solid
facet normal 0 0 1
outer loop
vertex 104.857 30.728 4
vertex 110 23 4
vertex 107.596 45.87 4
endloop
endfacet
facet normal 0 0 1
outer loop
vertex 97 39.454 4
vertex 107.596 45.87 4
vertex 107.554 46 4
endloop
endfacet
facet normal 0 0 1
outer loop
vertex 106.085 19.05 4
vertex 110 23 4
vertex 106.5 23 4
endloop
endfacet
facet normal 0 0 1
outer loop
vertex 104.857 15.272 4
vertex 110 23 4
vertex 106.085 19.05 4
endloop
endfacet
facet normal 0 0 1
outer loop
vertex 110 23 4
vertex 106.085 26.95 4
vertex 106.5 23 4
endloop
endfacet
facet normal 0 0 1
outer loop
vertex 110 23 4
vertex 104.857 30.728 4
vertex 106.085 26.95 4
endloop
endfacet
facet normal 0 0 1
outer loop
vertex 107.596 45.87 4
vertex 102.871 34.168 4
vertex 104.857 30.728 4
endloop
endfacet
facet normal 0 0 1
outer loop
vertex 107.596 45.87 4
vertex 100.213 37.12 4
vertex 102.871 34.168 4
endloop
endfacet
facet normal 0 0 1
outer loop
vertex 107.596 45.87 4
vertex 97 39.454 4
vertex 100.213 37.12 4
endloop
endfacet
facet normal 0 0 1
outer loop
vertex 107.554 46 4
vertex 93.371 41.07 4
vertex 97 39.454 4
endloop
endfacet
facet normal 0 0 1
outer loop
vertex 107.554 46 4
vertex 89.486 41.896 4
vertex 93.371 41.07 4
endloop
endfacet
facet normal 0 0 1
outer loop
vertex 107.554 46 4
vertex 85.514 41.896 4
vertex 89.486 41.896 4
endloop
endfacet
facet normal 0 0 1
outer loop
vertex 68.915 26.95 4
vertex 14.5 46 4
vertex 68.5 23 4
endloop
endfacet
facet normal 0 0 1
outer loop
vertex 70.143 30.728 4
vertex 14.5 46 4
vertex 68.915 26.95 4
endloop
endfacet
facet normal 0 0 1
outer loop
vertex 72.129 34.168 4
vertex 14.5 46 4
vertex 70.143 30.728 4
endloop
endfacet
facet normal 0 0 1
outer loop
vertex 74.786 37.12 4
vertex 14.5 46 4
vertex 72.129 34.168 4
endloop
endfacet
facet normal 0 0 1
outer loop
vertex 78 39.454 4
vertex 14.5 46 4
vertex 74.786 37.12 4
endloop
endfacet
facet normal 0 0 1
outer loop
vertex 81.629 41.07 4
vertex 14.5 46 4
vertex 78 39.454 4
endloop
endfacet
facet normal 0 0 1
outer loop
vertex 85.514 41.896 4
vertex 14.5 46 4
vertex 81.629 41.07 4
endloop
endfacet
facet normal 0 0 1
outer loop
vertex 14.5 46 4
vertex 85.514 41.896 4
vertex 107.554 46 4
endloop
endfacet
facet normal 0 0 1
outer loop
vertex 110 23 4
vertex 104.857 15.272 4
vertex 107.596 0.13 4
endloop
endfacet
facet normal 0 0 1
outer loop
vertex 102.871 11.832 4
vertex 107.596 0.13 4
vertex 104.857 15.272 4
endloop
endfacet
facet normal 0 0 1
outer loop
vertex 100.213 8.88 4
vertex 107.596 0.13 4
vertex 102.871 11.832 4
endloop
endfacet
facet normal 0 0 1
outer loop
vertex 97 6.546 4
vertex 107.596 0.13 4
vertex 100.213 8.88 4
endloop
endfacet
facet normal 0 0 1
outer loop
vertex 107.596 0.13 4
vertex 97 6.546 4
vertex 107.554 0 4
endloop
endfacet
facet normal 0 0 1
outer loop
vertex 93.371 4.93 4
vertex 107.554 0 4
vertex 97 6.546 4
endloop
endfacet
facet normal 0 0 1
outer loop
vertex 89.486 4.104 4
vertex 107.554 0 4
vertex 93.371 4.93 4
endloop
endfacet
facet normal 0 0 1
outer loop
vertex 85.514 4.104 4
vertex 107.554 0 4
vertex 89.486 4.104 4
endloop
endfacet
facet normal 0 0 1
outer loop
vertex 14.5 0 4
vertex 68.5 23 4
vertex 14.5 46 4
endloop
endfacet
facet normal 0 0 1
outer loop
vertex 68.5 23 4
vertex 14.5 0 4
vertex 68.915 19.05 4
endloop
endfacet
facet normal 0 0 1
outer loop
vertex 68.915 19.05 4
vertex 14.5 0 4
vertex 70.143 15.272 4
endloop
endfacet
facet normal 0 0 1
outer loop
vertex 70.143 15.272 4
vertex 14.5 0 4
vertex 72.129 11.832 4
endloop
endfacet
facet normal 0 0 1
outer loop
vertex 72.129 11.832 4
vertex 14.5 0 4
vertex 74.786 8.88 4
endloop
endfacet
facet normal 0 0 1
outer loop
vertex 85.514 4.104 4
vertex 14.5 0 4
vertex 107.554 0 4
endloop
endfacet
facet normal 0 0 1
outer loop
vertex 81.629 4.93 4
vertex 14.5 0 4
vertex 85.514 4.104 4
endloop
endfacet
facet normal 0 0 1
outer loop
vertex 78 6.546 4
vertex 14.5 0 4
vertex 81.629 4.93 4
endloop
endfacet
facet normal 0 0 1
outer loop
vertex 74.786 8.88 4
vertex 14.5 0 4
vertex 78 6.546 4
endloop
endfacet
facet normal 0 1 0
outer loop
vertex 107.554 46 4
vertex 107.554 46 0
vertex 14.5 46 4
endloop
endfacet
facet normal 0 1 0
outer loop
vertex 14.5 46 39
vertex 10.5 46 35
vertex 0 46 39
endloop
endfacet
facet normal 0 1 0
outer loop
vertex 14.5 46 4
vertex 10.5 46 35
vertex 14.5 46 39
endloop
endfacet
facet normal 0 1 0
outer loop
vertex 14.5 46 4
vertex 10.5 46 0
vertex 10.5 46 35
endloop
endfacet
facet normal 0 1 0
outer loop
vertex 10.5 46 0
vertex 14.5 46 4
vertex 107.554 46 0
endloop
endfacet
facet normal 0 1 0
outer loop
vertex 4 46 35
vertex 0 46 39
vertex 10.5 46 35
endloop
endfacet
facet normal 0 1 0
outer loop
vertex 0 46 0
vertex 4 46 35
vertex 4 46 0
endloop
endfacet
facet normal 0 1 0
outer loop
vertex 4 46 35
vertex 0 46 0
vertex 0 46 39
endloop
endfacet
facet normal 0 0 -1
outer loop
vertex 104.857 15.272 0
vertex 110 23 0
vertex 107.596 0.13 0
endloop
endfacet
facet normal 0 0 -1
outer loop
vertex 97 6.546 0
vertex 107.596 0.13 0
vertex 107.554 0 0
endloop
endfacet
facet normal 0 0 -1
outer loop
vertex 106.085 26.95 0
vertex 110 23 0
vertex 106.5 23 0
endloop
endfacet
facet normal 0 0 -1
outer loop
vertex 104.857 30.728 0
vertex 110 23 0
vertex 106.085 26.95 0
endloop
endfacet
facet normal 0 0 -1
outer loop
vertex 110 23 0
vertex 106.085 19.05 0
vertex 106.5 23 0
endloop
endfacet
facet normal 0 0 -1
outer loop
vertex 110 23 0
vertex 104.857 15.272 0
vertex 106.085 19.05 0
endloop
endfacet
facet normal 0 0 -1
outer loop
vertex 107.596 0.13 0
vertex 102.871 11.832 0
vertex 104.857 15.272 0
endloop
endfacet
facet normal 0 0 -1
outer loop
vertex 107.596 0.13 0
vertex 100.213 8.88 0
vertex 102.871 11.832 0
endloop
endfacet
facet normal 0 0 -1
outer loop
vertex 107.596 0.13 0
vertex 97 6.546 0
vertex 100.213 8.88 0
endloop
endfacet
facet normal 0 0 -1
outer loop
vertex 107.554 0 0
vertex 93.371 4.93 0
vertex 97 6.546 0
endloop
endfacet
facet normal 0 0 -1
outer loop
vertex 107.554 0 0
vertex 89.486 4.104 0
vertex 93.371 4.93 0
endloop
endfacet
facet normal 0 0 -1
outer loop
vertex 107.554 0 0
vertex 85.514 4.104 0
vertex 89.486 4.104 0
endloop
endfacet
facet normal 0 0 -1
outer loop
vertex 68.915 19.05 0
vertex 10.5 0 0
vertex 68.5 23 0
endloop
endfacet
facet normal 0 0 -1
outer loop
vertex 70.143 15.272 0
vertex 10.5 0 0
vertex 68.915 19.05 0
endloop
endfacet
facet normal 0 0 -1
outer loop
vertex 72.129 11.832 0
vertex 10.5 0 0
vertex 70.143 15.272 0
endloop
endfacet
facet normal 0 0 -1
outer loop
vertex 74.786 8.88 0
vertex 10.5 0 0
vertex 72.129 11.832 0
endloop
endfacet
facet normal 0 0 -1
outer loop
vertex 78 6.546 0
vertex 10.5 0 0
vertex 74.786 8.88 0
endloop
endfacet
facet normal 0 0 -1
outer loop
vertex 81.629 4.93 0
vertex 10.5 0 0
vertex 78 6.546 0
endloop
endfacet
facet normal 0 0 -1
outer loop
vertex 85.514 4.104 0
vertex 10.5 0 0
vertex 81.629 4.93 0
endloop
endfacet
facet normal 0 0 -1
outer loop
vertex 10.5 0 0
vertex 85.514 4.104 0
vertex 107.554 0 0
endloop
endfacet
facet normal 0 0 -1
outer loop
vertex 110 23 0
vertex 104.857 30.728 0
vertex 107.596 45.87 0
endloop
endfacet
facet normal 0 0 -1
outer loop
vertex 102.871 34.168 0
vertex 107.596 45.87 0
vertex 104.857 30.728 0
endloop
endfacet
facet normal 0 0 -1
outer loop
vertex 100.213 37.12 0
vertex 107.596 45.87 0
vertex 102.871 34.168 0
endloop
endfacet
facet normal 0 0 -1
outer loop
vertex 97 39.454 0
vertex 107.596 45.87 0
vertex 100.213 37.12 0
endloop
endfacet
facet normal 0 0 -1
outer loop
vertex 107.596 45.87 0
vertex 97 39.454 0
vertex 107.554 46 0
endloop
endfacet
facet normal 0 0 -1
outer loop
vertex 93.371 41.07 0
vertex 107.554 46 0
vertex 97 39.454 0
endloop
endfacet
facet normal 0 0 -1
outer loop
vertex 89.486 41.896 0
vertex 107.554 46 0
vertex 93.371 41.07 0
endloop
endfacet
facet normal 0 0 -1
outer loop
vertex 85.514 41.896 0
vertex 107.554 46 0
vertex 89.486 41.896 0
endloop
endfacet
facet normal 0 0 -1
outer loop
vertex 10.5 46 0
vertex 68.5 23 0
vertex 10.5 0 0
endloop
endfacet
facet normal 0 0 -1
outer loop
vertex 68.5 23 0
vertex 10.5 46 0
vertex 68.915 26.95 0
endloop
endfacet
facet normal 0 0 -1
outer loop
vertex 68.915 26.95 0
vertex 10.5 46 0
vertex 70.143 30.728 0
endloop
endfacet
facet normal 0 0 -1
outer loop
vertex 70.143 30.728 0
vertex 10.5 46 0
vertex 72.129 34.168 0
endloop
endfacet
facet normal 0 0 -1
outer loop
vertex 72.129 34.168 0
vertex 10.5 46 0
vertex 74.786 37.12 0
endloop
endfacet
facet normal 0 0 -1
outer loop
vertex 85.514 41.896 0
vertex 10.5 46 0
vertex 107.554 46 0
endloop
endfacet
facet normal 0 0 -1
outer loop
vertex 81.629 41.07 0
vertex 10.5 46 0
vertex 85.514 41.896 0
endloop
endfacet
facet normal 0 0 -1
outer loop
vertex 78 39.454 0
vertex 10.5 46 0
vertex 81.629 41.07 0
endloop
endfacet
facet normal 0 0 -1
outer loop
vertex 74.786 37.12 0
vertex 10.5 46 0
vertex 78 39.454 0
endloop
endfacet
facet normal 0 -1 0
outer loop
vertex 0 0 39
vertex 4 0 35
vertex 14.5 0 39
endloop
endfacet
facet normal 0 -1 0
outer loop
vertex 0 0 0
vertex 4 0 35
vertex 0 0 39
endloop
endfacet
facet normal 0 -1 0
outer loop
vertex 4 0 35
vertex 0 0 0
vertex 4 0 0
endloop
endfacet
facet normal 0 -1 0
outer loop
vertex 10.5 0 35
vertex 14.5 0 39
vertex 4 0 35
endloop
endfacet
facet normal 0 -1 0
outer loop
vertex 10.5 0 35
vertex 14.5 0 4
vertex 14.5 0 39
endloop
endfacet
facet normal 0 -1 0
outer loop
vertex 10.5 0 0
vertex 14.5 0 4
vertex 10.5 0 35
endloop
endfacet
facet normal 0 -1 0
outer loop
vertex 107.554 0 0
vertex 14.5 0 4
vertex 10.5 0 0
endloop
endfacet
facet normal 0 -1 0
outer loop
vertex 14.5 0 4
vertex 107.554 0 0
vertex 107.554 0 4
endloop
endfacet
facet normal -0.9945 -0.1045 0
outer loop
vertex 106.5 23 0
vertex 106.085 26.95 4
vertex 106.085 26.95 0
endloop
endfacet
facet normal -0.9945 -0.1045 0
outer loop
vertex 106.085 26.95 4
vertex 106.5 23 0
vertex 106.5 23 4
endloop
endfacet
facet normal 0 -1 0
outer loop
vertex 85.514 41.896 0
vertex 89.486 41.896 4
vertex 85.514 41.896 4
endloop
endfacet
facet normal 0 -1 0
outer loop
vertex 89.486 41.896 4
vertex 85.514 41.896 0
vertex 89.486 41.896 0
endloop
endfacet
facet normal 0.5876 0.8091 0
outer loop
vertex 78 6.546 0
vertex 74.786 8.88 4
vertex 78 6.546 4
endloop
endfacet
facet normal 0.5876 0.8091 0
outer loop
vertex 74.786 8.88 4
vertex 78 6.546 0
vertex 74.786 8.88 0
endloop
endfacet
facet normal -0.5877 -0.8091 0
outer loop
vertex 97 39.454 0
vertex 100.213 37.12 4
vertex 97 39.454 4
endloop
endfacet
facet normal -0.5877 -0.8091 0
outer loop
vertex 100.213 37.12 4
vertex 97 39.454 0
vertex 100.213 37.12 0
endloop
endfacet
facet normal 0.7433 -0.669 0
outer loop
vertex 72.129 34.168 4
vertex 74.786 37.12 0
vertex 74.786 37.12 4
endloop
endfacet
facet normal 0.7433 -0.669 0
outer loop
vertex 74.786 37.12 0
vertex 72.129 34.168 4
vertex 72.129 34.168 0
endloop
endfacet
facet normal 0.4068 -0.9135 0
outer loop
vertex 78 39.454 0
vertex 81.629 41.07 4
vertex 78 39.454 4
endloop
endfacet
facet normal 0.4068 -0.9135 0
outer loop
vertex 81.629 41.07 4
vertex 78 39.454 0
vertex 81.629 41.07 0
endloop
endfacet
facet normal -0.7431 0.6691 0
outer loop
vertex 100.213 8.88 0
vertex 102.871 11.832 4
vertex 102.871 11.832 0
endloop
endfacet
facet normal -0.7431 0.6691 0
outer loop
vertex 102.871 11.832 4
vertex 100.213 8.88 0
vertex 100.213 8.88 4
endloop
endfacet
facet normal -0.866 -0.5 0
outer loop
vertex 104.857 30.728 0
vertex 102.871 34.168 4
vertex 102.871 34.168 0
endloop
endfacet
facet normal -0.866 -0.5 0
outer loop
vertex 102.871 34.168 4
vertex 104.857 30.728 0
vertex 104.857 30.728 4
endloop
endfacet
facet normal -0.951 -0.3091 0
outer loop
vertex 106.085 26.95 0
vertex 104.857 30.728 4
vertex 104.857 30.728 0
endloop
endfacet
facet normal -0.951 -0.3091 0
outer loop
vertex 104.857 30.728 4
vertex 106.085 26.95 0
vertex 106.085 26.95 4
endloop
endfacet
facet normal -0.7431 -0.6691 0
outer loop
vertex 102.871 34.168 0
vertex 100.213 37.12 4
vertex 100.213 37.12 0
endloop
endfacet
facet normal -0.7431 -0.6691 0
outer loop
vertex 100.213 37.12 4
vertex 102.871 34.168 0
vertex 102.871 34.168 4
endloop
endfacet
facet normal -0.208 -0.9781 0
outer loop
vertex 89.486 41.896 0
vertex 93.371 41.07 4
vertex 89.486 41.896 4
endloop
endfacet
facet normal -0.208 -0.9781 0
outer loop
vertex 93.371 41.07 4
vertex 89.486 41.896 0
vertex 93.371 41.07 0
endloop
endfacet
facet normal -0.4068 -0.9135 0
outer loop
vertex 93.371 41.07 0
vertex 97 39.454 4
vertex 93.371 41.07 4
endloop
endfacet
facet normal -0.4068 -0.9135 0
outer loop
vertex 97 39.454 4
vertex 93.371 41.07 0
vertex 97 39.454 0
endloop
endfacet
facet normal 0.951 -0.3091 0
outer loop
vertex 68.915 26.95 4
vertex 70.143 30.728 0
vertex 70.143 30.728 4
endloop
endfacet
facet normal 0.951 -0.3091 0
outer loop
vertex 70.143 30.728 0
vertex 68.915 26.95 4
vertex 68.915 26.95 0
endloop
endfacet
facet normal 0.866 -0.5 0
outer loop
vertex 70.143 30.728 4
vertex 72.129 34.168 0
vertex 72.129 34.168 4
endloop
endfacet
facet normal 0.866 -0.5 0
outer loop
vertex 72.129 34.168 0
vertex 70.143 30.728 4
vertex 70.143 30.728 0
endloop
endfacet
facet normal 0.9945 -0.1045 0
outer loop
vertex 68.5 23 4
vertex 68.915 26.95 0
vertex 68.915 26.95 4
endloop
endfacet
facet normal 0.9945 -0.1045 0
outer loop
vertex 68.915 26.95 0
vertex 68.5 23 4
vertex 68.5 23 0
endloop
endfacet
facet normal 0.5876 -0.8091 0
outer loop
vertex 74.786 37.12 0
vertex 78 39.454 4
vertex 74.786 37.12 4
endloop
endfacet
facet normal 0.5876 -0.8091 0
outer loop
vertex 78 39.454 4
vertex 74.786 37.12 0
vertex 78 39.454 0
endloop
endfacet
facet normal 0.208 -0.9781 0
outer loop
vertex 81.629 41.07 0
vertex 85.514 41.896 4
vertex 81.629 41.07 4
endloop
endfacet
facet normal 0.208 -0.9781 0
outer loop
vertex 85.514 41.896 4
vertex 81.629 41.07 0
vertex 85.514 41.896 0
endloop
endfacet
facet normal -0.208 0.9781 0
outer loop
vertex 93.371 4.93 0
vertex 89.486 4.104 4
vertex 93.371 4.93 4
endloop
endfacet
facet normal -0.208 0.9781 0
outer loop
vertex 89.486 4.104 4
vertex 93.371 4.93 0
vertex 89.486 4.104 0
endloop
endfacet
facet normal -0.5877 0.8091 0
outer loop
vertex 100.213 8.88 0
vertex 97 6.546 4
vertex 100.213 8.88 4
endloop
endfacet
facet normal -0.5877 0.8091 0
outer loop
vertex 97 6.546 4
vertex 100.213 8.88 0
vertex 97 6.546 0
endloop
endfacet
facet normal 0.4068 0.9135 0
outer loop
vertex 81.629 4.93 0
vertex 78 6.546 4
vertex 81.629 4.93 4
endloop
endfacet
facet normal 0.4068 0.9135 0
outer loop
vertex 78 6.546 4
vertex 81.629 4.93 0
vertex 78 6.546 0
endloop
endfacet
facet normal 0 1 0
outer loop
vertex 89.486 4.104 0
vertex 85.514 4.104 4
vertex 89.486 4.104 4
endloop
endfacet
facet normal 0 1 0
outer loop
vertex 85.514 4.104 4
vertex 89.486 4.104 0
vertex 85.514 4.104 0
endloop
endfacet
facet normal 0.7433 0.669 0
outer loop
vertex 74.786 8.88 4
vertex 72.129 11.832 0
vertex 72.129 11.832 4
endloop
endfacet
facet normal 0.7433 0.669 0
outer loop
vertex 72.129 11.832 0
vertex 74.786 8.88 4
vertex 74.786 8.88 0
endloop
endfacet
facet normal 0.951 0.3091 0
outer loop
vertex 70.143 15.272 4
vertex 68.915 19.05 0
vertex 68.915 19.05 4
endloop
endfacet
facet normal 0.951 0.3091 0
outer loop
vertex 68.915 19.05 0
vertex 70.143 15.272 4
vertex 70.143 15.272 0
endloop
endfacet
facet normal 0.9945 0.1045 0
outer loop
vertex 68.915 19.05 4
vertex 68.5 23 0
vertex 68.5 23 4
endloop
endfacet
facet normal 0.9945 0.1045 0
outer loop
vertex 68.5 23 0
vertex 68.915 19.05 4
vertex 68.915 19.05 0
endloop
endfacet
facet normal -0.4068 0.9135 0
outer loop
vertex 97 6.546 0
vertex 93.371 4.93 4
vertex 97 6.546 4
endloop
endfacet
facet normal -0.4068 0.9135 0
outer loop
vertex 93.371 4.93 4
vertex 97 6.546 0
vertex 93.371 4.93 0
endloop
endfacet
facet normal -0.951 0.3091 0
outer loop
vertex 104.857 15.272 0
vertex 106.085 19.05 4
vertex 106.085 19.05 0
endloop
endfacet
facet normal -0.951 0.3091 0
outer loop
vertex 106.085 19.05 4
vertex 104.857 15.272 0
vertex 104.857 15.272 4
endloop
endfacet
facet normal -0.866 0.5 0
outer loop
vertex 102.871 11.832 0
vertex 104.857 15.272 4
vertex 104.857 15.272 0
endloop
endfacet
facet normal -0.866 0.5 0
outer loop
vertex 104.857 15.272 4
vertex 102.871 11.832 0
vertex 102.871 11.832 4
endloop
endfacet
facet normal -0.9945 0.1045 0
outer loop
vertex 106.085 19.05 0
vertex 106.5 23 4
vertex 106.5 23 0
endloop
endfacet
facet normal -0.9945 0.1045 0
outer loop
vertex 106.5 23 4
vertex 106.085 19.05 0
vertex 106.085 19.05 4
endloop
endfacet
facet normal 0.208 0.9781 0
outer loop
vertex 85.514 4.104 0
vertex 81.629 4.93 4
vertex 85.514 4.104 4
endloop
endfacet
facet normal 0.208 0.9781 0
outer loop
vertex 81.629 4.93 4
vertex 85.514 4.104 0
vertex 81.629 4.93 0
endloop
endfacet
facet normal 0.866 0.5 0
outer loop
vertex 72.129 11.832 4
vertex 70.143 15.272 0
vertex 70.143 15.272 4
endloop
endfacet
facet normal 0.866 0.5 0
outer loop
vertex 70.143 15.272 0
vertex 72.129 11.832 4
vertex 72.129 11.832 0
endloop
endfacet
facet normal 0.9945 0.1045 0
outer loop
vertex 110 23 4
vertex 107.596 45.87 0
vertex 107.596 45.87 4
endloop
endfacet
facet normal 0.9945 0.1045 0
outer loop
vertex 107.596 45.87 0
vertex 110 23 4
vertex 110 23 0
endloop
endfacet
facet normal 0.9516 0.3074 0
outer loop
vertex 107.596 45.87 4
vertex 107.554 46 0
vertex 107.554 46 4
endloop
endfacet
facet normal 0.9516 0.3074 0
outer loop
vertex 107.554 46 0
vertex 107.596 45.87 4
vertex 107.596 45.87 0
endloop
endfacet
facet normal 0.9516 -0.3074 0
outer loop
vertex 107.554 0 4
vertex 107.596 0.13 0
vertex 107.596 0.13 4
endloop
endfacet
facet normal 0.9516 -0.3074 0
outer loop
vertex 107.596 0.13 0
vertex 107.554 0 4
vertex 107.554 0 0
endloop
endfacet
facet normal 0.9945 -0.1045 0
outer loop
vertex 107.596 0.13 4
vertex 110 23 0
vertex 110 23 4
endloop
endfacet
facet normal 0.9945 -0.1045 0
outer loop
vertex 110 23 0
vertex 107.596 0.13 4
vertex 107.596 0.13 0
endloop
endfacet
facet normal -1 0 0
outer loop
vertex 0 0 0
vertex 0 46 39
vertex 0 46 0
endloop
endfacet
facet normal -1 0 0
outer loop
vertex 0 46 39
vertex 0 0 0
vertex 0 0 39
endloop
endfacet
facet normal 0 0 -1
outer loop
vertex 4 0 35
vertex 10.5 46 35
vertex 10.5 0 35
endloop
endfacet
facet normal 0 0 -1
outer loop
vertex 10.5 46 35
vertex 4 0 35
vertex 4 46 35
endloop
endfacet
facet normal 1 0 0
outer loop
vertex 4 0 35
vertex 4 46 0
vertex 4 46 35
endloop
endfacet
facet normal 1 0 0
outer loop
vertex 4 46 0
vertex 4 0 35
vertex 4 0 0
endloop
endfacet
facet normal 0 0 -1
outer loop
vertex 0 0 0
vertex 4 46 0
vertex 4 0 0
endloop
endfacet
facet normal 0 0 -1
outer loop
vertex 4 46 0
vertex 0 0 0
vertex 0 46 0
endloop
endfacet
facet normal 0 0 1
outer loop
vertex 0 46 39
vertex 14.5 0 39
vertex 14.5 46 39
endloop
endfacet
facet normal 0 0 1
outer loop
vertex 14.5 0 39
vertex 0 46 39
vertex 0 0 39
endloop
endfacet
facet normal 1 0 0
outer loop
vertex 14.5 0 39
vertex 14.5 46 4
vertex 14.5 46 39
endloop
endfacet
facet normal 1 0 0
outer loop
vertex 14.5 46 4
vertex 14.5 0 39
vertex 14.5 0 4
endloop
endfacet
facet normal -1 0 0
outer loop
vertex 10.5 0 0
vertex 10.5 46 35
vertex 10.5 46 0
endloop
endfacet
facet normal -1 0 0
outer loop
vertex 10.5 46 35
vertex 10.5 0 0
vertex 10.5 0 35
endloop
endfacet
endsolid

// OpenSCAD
hole_rad = 19;
thick = 4;
gap = 6.5;
depth = 50;
height = 35;
width = (2*hole_rad)+(2*thick);
long = 100;
hor_thick = 4;

translate([0, 0, 0])
    cube(size=[thick, width, height]);
    
translate([0, 0, height])
    cube(size=[thick+gap+thick, width, thick]);
    
translate([thick+gap, 0, 0])
    cube(size=[thick, width, height]);
    

intersection()
{
    difference()
    {
        translate([thick+thick+thick, 0, 0])
            cube(size=[long, width, hor_thick]);
        
        center_x = (thick+gap+thick+long)-thick-thick-hole_rad;
        center_y = width / 2;
        translate([center_x, center_y, 0])
            cylinder(h = hor_thick, 
                r1 = hole_rad, 
                r2 = hole_rad);

    }
    
    translate([0, width/2, 0])
        cylinder(h = hor_thick, r1 = 110, r2 = 110);
    
}
